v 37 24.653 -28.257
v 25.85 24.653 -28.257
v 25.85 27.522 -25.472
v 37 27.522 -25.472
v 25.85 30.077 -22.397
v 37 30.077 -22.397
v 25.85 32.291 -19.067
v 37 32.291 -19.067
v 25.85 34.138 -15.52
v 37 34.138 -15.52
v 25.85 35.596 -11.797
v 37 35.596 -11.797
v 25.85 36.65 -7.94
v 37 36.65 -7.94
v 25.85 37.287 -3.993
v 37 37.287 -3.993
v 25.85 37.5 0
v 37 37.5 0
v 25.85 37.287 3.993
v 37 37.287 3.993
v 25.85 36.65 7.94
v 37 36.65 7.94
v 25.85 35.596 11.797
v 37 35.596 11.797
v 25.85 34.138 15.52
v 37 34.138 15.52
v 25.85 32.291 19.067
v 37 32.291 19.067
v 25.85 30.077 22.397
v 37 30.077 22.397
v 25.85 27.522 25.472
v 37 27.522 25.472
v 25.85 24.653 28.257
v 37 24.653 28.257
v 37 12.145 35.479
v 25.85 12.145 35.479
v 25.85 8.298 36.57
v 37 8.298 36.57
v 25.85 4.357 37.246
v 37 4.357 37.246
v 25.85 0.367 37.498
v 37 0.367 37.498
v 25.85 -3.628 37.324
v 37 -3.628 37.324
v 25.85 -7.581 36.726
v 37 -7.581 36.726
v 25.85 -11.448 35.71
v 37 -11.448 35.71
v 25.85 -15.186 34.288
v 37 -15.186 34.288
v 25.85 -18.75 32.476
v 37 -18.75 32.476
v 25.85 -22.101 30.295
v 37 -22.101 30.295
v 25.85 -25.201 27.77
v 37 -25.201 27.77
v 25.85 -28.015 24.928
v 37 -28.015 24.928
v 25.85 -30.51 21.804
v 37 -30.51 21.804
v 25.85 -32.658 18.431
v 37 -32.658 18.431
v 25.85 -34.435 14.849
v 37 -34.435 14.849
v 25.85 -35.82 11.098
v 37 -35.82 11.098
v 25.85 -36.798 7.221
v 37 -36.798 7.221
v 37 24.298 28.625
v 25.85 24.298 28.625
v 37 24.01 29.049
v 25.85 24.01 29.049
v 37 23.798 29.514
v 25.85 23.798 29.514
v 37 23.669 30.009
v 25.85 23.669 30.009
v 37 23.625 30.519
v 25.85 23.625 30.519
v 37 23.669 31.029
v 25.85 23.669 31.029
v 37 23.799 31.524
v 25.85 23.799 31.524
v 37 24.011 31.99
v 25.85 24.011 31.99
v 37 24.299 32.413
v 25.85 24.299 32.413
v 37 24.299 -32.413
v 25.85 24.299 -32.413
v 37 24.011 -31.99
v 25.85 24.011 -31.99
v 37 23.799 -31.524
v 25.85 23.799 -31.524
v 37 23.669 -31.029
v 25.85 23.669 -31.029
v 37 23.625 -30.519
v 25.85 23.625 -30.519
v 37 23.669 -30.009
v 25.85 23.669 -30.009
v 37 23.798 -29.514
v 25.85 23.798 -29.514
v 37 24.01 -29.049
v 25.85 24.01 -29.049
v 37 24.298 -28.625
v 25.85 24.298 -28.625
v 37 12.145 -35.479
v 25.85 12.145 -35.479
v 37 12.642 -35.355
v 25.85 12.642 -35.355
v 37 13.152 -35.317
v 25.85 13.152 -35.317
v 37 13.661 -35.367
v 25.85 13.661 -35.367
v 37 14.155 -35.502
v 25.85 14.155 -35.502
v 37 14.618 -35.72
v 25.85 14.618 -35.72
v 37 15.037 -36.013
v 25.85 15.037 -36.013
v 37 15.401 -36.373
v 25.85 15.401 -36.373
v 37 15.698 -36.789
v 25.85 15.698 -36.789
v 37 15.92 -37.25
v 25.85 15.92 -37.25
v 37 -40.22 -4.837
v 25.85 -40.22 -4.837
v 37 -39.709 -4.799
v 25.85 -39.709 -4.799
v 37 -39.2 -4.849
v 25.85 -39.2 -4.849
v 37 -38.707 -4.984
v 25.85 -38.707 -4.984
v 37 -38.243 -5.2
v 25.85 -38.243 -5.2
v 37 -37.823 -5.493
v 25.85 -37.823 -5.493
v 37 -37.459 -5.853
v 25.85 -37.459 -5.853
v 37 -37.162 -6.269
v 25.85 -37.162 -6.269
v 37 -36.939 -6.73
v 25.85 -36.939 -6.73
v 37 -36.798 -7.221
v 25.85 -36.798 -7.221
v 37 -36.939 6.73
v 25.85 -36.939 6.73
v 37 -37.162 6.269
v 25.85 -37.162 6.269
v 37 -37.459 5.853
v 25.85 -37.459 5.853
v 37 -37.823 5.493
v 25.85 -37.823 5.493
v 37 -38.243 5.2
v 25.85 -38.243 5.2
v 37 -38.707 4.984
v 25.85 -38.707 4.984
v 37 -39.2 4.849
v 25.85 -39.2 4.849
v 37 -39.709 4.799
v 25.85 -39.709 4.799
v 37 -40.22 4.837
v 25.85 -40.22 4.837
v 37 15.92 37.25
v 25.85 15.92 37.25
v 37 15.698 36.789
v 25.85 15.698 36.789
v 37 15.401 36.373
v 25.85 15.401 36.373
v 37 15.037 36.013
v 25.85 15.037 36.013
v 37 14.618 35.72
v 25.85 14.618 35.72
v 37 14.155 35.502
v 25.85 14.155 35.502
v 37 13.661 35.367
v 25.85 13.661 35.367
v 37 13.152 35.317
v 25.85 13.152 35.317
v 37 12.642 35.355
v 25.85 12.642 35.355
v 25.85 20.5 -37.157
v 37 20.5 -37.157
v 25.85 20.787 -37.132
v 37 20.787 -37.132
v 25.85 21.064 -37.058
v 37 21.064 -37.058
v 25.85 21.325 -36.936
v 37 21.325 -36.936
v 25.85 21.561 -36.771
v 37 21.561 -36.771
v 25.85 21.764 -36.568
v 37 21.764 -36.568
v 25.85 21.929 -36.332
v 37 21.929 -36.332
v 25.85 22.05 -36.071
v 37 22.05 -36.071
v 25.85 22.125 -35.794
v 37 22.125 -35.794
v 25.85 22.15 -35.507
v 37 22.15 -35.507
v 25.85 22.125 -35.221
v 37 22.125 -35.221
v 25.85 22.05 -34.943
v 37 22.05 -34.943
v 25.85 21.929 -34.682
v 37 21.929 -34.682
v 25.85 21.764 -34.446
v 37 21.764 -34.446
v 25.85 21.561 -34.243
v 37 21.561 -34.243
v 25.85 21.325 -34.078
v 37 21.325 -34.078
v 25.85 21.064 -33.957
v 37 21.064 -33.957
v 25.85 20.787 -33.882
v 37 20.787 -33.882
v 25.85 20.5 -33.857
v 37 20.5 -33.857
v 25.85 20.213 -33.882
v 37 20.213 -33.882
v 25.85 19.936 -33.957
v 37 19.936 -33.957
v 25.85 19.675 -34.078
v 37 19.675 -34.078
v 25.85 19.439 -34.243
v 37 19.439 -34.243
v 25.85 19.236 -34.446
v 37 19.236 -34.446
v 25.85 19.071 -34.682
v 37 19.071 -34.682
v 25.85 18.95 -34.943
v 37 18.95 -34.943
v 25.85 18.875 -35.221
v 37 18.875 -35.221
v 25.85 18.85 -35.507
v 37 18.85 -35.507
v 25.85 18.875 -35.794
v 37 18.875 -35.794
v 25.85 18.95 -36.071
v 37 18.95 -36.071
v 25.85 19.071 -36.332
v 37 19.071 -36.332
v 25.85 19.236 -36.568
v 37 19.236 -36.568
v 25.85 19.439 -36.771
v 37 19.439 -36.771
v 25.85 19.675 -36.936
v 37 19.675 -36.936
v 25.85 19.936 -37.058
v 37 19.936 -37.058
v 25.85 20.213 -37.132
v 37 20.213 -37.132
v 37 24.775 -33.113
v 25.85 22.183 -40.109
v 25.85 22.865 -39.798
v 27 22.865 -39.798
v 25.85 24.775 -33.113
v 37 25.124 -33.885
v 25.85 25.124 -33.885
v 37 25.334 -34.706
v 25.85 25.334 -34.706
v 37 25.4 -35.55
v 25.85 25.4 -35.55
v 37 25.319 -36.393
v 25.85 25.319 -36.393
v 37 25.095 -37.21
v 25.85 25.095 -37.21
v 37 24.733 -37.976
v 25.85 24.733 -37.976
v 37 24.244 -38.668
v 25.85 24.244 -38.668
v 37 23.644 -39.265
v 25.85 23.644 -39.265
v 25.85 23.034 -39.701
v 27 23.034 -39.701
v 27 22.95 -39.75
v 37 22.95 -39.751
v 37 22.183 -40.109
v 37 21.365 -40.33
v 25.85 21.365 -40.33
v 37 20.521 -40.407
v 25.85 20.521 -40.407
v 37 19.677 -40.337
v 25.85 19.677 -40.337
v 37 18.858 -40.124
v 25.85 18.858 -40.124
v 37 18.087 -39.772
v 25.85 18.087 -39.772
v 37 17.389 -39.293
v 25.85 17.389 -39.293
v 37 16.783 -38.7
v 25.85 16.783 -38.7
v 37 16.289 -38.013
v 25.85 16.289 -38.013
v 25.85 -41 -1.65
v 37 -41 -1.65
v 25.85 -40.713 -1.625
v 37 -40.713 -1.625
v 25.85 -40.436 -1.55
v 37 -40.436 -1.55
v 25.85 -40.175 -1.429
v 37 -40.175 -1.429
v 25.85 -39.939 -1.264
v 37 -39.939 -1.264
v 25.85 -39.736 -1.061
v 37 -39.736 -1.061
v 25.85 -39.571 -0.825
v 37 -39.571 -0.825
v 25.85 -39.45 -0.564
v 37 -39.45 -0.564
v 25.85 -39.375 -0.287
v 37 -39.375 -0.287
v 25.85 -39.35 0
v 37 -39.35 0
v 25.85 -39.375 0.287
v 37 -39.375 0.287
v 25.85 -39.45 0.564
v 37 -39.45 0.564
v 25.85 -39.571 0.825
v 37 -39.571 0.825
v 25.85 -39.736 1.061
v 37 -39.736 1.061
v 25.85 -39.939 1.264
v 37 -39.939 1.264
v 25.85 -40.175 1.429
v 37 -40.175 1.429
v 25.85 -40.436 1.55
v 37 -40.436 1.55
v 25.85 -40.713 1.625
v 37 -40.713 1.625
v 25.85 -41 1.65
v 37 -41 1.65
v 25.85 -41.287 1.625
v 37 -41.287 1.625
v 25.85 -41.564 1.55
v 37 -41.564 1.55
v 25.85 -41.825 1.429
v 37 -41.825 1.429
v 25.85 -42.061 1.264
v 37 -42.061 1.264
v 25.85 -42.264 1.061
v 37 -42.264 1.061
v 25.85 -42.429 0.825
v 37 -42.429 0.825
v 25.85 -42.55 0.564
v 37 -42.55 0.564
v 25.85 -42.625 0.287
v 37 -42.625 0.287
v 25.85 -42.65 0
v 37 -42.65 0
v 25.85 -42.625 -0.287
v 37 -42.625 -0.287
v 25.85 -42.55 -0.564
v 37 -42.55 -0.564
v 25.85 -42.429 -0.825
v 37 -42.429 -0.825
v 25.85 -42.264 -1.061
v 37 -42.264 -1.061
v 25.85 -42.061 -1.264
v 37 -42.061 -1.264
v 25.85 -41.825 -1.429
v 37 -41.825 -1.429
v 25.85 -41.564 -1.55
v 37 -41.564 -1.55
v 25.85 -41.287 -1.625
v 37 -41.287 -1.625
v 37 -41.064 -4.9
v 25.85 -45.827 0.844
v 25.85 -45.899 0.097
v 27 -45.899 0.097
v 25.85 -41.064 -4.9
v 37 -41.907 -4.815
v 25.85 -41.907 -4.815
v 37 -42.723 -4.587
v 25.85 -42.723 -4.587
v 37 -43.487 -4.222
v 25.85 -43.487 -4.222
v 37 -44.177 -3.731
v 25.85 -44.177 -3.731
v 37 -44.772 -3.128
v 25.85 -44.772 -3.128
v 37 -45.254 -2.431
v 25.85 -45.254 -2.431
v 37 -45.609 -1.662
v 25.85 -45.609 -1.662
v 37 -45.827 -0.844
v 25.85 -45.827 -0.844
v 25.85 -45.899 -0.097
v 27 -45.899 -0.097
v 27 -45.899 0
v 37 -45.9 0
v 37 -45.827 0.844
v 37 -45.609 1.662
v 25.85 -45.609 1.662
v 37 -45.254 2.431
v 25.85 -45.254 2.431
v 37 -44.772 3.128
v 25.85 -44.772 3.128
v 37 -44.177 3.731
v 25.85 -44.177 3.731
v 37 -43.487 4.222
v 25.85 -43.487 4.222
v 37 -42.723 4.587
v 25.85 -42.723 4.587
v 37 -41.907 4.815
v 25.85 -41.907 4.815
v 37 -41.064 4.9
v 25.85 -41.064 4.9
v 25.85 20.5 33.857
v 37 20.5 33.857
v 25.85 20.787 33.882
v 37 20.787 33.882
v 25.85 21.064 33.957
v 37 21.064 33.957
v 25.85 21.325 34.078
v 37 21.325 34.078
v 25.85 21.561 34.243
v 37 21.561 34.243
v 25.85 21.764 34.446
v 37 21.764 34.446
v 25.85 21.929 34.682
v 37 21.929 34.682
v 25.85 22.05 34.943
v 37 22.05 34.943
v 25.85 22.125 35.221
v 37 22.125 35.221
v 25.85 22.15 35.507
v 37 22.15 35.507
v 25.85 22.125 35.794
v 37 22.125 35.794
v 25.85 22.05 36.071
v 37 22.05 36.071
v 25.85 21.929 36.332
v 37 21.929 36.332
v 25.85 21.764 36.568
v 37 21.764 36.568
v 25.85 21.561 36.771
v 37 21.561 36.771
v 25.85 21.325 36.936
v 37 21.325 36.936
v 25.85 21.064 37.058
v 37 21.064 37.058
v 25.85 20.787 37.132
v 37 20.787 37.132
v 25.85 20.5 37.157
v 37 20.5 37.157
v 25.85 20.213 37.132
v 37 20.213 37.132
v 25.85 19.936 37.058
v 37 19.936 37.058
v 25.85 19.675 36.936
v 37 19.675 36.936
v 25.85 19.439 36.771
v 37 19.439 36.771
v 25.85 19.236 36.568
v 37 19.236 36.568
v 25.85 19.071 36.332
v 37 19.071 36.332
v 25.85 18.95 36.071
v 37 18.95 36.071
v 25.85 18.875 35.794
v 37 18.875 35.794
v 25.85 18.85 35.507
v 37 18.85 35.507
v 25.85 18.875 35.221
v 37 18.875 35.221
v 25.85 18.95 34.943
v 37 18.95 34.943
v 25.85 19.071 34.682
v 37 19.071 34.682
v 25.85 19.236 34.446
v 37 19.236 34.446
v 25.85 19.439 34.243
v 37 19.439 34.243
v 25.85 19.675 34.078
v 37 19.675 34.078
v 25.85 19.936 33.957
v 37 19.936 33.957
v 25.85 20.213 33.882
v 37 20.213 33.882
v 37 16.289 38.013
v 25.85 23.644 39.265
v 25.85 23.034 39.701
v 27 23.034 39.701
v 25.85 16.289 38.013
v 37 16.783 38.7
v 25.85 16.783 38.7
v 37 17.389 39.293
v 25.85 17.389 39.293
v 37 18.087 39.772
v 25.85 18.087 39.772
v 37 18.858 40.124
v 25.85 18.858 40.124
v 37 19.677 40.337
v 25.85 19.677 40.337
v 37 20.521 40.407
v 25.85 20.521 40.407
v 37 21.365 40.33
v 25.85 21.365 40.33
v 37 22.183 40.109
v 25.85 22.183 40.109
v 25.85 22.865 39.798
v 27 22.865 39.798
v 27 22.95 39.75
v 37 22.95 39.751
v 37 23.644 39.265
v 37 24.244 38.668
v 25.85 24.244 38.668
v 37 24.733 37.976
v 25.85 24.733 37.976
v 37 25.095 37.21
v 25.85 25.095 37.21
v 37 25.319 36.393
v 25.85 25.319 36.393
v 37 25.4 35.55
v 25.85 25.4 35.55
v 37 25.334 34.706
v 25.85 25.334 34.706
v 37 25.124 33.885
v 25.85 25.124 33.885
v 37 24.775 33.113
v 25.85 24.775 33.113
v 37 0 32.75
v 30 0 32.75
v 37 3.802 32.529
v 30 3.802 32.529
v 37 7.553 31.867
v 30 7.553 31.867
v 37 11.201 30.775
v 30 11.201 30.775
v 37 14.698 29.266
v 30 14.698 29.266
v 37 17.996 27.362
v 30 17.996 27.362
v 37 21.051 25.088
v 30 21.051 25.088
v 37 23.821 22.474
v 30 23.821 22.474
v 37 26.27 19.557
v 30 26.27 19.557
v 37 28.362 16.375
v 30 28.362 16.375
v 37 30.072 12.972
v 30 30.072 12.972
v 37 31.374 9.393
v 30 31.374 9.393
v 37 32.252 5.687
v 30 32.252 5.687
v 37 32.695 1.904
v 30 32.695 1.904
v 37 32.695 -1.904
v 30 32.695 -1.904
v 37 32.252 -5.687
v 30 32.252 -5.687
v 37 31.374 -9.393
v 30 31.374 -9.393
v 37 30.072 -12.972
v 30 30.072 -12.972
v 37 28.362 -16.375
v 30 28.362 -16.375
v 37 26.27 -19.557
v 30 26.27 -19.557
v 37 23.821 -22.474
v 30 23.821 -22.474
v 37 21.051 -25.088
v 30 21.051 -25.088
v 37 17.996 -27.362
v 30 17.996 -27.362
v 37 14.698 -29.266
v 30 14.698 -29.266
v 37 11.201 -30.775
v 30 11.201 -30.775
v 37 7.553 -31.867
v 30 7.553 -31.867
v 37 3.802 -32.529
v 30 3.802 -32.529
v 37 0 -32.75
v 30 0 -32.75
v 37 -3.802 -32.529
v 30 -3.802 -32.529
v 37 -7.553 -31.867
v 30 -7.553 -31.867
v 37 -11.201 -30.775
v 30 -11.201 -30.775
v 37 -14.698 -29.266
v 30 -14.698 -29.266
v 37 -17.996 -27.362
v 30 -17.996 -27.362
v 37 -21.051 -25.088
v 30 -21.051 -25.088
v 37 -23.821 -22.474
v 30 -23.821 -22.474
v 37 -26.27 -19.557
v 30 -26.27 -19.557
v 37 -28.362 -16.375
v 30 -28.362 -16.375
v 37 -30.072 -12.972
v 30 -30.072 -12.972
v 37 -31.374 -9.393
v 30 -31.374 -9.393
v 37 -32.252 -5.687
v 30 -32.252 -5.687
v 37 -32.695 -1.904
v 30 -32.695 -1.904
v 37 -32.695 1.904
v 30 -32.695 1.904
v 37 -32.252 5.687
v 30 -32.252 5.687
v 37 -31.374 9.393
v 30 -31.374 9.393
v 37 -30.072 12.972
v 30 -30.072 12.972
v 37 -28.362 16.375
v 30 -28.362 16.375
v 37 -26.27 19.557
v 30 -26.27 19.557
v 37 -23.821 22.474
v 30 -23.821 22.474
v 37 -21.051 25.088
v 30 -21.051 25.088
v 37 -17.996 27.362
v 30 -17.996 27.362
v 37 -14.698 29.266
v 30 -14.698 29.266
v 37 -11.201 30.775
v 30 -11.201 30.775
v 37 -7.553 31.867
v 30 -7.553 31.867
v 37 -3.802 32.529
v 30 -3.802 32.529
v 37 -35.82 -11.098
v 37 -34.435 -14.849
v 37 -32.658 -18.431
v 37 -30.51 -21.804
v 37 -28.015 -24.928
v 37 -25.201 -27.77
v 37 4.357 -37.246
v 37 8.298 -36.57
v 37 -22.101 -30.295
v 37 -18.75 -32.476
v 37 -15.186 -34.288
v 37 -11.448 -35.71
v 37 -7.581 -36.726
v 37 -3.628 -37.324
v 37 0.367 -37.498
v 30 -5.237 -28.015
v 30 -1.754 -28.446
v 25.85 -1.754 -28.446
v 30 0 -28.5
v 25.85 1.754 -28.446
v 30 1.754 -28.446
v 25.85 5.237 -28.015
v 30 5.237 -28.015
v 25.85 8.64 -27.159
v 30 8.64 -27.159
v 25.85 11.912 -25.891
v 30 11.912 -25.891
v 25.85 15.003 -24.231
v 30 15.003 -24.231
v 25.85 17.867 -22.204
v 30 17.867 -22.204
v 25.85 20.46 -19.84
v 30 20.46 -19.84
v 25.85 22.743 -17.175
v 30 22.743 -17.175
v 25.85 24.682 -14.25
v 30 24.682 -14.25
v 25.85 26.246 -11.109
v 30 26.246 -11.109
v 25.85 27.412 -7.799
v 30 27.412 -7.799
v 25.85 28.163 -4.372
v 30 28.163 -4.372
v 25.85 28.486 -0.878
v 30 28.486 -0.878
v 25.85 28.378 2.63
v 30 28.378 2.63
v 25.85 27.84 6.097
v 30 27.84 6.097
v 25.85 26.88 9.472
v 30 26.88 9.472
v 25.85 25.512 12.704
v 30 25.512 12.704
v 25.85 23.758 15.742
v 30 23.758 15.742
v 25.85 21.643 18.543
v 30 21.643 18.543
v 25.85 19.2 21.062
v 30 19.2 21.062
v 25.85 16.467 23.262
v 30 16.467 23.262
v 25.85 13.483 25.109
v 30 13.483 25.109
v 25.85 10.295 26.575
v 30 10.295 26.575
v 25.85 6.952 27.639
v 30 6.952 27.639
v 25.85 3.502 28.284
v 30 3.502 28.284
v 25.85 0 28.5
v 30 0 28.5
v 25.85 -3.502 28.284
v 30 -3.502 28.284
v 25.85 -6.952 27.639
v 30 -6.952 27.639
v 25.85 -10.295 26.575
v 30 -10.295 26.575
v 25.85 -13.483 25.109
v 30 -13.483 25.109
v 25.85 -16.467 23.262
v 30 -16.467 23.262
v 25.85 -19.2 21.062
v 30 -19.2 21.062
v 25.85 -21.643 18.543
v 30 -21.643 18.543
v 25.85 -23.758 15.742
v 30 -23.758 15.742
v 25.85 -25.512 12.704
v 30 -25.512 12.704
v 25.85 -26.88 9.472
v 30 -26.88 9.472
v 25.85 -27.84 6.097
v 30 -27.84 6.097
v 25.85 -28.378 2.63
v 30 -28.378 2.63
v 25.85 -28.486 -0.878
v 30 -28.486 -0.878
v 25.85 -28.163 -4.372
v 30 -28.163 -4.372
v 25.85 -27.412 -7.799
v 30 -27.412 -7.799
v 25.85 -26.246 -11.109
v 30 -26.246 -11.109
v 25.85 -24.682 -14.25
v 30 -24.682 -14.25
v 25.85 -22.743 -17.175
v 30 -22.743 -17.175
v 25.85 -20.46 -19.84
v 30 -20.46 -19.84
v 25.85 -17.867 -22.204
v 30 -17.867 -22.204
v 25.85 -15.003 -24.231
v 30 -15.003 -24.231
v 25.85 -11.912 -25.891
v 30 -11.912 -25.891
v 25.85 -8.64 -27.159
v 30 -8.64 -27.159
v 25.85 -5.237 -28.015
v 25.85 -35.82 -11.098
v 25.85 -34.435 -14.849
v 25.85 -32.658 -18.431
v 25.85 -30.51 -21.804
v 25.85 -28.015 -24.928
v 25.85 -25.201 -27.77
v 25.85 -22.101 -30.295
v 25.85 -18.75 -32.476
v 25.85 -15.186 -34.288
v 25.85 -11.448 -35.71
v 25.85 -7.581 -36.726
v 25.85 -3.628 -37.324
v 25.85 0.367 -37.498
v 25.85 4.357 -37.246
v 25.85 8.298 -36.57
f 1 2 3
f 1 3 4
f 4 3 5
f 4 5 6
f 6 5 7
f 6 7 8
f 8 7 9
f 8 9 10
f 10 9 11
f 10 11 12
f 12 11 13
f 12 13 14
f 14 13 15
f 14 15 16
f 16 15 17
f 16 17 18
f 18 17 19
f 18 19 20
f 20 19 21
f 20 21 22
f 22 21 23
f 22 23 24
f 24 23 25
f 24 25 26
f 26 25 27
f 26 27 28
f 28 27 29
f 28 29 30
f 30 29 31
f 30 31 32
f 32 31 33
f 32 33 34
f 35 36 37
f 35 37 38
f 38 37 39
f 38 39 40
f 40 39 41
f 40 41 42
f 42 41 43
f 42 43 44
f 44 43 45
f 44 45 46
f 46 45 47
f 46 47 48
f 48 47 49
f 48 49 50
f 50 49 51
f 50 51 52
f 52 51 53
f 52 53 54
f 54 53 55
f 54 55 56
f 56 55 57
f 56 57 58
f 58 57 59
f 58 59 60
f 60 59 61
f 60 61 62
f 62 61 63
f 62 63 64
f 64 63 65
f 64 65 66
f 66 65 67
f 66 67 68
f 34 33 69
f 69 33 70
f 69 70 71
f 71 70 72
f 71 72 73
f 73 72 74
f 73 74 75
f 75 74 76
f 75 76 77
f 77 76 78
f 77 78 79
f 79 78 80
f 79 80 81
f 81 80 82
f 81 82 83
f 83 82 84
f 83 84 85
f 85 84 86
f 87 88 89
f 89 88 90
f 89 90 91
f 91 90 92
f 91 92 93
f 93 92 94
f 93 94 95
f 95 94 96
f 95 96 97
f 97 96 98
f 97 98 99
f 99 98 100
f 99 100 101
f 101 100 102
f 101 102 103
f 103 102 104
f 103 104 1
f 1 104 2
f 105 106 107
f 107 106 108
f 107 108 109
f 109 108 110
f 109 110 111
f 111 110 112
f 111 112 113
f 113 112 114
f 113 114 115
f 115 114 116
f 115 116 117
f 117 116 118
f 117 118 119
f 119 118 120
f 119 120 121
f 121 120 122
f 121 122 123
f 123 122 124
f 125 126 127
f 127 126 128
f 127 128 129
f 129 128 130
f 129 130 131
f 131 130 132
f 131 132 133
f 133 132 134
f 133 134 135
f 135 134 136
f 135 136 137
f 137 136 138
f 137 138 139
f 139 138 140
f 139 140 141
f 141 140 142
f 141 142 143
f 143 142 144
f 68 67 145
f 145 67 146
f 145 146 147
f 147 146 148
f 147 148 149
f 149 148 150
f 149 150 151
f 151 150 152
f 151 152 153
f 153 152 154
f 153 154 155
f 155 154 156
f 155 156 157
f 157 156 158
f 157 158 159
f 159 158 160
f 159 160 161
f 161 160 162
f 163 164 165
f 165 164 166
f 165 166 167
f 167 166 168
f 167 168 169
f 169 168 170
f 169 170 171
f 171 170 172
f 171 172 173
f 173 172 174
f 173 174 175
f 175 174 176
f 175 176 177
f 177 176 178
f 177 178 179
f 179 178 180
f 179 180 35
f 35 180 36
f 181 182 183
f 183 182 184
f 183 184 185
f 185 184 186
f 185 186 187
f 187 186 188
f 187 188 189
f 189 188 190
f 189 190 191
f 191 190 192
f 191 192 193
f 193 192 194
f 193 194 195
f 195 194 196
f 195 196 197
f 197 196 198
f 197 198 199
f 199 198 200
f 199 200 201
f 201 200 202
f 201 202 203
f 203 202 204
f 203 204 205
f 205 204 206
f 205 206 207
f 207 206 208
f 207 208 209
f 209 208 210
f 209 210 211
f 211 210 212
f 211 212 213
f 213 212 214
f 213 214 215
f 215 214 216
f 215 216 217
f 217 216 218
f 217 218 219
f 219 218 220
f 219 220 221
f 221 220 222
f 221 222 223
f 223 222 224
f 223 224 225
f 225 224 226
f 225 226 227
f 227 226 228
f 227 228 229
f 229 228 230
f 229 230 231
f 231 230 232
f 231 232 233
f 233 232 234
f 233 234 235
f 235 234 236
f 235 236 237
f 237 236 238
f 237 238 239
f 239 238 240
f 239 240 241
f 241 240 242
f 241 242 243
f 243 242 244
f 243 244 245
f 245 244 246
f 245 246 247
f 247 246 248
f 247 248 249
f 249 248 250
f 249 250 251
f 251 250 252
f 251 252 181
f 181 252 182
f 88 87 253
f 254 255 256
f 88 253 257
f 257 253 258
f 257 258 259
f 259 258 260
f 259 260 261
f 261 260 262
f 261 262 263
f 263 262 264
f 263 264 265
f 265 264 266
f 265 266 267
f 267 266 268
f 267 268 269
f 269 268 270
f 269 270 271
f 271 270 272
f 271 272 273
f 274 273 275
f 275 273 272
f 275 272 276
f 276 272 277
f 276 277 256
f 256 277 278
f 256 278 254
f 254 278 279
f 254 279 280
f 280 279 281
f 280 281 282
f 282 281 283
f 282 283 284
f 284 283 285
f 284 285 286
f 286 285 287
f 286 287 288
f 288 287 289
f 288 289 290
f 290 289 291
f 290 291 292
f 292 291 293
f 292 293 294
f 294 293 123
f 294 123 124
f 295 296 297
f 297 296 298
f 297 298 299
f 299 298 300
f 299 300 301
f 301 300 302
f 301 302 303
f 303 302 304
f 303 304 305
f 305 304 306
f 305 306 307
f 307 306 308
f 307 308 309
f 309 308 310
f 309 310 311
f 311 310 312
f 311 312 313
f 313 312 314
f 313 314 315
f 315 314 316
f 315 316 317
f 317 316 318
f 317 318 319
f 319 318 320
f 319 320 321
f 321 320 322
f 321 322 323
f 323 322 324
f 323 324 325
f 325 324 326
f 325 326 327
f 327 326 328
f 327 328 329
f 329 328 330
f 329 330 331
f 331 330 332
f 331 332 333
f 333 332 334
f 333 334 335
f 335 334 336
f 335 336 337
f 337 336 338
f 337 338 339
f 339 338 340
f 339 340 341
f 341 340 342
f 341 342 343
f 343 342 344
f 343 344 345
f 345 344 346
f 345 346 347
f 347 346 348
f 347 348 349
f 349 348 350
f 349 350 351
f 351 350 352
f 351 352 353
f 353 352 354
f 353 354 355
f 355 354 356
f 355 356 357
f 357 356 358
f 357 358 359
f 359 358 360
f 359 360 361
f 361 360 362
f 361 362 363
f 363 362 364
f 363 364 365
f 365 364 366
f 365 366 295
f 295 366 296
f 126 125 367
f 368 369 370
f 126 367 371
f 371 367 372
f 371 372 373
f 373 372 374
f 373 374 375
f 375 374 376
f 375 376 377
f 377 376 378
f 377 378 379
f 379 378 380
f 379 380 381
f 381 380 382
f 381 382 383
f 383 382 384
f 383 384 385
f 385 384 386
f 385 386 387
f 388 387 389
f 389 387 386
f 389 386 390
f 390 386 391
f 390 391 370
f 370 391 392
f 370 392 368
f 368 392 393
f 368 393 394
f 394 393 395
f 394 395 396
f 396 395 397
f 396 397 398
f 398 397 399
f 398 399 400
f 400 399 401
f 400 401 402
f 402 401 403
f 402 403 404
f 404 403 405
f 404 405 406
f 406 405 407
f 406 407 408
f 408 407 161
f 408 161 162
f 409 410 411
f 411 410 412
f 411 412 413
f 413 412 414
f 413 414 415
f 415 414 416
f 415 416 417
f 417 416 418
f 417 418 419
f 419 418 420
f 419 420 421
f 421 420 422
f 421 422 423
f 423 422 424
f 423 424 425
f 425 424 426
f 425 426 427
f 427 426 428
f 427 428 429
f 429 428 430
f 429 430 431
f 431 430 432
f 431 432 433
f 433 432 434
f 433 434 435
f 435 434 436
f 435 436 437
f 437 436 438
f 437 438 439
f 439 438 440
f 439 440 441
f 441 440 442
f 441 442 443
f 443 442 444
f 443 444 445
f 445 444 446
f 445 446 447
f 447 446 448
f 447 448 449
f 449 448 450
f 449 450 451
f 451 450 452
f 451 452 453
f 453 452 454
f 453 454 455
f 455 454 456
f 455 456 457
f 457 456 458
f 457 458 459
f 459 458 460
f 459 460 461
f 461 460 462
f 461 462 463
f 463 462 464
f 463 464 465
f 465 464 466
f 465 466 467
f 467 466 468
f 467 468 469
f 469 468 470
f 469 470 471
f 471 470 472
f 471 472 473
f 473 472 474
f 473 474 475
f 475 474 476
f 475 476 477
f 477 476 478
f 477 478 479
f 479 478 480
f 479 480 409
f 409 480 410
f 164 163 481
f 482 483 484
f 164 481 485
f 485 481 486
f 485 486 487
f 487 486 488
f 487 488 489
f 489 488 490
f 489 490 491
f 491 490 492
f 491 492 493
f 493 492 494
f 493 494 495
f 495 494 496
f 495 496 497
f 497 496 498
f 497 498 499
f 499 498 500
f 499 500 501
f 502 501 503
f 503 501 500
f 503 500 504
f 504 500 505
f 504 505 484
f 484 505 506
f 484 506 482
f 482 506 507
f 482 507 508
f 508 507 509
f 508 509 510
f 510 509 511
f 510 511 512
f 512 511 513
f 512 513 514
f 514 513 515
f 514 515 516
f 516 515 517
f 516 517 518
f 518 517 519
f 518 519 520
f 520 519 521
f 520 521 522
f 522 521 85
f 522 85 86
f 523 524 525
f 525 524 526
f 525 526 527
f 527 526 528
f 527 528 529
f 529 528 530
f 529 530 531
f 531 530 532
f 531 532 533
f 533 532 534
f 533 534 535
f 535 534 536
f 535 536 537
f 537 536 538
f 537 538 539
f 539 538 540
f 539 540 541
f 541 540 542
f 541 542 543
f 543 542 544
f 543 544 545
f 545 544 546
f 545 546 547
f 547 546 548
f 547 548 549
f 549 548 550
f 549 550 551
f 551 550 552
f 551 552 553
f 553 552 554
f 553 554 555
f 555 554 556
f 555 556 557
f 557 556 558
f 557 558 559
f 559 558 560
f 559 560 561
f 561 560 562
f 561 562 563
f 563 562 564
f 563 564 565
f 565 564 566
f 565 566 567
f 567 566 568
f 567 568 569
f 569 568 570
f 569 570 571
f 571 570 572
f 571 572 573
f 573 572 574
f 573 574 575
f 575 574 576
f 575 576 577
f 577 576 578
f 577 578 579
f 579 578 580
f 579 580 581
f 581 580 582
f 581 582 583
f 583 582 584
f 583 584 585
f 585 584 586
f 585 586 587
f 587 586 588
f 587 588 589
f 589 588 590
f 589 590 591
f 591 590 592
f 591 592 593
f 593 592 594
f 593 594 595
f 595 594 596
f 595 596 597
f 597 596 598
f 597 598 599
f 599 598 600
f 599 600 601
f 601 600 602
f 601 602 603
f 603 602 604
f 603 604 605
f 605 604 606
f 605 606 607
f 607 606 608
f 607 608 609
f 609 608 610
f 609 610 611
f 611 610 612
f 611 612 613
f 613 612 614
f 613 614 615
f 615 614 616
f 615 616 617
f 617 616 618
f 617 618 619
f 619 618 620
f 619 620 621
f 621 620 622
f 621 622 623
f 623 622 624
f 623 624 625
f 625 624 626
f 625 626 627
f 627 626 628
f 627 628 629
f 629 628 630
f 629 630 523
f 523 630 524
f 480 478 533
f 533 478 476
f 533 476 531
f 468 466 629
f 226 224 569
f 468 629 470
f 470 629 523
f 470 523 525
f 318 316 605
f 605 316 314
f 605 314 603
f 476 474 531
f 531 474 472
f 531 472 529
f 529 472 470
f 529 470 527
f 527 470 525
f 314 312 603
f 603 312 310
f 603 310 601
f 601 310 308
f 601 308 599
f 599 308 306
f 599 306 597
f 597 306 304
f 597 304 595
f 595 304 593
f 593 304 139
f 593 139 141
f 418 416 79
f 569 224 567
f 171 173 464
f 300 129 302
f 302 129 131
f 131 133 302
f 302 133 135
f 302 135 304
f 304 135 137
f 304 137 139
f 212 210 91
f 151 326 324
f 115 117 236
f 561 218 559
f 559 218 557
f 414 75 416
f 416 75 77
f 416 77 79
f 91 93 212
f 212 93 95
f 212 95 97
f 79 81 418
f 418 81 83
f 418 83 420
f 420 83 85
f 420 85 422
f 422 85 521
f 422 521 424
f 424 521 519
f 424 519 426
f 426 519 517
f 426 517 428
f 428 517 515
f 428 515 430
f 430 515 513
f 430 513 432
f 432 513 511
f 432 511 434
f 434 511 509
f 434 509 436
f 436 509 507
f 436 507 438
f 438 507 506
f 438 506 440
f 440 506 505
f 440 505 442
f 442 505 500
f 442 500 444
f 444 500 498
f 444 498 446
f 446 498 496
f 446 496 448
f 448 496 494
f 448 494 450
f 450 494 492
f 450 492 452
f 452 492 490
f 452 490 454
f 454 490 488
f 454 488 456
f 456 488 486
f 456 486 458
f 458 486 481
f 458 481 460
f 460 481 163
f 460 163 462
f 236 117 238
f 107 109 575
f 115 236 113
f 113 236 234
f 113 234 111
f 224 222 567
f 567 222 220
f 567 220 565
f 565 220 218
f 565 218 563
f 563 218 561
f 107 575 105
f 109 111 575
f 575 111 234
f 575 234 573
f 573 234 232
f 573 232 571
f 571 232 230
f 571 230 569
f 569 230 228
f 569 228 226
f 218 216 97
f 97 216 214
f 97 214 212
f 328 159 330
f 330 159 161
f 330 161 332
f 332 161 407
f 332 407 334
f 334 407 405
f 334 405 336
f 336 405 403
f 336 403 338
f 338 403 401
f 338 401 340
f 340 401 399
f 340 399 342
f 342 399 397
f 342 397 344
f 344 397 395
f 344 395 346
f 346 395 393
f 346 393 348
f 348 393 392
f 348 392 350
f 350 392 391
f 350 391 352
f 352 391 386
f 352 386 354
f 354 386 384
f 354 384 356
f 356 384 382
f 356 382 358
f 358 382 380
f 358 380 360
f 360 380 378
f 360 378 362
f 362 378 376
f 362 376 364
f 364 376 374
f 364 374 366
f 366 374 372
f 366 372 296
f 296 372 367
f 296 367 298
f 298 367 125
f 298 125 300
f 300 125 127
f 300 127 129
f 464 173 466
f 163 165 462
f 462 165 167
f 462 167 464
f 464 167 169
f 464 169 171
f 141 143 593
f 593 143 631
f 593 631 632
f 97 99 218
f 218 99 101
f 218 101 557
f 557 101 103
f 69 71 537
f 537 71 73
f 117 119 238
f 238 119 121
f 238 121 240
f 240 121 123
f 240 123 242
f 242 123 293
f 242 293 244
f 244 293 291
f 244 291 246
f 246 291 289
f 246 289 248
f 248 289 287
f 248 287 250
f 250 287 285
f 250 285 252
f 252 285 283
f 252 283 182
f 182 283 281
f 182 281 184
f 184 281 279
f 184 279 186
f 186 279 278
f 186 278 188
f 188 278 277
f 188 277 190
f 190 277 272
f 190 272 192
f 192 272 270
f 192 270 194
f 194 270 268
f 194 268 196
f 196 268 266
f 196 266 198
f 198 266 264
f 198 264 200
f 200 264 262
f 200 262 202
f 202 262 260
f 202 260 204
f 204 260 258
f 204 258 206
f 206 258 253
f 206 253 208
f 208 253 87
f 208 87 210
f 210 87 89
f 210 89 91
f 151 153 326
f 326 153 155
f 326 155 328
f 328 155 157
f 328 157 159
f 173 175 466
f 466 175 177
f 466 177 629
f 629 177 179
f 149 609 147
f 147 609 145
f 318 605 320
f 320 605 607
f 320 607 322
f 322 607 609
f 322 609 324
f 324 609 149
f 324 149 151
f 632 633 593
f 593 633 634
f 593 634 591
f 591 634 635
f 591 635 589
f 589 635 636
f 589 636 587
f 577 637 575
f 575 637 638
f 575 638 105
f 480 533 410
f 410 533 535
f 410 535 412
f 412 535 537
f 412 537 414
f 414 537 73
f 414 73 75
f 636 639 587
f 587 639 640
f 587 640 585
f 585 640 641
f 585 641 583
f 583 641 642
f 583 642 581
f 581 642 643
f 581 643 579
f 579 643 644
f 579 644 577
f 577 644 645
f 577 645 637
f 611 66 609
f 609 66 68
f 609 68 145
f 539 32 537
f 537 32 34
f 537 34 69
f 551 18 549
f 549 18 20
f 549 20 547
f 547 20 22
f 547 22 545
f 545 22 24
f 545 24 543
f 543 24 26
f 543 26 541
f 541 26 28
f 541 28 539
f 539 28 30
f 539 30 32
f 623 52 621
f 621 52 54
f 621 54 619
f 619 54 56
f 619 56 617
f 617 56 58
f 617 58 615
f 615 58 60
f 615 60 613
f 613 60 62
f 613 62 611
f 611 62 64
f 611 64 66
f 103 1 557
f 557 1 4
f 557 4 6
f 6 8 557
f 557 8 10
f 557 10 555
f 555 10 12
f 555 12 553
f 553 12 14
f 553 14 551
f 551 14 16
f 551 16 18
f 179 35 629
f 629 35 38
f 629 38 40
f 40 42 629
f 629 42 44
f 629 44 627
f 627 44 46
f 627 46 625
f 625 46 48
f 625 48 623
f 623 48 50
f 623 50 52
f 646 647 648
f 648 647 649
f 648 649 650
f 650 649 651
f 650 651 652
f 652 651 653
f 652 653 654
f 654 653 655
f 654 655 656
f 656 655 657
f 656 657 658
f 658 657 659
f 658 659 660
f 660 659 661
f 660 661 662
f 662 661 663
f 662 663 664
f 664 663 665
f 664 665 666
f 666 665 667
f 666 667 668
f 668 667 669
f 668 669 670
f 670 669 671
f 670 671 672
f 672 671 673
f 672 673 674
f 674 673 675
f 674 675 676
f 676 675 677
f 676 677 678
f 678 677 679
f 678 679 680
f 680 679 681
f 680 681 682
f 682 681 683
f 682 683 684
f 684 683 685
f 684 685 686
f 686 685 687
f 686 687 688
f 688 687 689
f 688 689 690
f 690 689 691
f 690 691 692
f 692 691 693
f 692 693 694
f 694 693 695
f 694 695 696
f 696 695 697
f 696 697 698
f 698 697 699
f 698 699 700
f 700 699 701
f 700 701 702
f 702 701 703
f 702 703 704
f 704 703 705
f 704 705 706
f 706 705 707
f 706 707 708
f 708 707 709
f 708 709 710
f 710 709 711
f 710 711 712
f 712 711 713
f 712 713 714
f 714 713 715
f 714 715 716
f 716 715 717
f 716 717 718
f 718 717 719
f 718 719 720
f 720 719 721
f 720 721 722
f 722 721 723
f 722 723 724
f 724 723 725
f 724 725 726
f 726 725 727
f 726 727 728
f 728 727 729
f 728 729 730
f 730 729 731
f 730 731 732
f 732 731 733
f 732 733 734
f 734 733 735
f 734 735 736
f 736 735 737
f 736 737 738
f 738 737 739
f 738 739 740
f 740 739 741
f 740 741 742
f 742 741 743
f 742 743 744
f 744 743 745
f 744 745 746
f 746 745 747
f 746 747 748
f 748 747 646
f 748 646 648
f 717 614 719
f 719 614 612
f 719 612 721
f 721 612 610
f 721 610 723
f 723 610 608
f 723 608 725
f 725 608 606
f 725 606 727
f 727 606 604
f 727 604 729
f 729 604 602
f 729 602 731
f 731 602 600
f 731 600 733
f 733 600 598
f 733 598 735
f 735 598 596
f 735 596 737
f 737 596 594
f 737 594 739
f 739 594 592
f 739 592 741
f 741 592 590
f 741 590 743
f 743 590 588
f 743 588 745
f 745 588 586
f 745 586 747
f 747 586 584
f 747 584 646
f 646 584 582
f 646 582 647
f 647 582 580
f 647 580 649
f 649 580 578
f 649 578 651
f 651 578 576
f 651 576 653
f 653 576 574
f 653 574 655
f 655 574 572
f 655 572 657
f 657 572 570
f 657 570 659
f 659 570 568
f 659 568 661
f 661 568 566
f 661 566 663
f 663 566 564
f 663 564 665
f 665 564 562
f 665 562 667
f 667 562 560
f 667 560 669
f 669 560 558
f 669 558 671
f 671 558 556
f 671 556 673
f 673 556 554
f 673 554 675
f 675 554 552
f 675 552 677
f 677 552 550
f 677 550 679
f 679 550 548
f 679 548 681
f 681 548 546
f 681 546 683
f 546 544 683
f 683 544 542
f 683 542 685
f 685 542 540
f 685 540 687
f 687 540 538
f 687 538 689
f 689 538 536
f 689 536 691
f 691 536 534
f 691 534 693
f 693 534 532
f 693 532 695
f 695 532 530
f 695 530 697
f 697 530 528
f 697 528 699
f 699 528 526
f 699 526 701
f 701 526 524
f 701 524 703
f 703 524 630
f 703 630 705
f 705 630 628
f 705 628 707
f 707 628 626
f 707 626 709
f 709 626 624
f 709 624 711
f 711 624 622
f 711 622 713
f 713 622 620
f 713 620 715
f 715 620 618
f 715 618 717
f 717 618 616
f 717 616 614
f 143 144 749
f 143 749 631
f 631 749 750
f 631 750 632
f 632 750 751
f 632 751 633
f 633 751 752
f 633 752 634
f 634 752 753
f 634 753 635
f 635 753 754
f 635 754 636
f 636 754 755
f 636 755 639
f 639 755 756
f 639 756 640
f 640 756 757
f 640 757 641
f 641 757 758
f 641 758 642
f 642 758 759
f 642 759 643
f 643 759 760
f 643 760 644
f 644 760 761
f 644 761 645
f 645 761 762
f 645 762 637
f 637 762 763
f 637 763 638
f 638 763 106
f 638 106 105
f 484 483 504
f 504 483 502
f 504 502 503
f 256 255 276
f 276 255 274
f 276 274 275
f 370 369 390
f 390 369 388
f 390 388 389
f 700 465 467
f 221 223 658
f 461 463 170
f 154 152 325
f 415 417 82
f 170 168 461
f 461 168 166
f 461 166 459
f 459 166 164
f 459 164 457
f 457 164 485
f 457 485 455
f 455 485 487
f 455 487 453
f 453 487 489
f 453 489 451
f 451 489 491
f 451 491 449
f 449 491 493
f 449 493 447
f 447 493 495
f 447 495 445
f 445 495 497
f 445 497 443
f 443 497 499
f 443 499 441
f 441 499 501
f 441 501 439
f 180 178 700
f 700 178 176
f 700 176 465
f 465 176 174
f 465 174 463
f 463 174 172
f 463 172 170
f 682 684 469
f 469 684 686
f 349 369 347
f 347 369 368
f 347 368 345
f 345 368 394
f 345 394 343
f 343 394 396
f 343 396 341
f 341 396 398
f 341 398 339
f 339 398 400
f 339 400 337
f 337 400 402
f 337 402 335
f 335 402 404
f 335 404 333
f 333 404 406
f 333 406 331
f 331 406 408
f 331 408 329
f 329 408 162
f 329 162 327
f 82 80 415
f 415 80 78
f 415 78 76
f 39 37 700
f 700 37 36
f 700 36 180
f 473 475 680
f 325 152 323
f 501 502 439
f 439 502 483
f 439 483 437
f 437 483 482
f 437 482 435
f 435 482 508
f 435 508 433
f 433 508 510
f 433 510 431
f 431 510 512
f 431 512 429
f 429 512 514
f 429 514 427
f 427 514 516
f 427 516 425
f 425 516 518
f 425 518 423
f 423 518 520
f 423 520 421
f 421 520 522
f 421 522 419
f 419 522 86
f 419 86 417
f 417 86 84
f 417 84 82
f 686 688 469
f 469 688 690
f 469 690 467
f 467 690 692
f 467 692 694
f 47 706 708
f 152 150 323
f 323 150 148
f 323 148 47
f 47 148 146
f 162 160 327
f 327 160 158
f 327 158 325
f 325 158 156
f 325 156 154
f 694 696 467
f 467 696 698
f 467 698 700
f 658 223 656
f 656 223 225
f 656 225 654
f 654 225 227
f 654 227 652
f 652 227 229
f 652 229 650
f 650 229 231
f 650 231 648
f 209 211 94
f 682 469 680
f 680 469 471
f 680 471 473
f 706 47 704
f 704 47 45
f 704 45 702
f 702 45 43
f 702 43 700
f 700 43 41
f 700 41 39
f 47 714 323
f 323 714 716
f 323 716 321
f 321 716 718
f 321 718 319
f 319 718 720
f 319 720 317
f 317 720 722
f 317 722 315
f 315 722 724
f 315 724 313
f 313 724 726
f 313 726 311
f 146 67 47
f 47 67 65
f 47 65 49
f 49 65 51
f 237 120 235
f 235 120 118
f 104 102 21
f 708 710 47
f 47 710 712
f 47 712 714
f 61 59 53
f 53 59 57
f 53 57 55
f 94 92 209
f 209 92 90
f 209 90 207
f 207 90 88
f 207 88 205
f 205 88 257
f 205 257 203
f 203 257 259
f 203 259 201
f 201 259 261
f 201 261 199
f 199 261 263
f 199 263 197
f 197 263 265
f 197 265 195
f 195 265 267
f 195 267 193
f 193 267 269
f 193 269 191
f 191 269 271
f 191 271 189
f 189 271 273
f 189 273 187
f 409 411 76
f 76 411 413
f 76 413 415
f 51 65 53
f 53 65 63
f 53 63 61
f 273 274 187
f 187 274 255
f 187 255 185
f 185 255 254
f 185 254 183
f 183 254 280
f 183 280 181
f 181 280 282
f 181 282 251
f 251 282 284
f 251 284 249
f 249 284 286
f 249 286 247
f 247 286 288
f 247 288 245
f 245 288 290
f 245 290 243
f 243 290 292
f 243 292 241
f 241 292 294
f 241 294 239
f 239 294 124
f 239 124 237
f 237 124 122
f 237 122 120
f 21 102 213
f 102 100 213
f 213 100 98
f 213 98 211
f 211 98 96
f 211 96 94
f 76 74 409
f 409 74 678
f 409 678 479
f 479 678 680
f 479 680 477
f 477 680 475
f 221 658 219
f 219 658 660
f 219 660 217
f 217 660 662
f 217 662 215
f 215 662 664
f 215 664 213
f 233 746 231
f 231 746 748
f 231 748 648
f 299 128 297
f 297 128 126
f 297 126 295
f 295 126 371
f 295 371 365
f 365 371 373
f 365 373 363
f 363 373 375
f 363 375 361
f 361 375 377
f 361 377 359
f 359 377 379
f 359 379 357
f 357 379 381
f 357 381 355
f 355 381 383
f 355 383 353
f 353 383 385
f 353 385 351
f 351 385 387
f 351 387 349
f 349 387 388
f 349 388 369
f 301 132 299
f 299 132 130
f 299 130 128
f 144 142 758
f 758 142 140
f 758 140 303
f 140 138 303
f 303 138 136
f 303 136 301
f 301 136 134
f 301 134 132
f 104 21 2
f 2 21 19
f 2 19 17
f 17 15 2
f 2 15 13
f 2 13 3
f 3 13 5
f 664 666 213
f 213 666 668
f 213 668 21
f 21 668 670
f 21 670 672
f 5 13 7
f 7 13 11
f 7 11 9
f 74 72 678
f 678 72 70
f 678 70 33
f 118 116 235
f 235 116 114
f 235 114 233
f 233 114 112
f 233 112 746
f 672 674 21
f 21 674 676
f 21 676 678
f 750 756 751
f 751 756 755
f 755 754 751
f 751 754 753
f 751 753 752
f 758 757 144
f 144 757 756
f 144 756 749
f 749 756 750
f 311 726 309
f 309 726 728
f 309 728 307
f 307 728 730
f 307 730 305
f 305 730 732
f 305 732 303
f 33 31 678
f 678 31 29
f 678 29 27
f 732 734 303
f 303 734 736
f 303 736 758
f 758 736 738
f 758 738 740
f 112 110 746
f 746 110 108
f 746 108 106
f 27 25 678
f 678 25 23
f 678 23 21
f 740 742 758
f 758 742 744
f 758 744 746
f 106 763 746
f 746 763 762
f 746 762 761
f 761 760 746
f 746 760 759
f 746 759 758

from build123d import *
from build123d.topology import SkipClean

# Parameters (mm, degrees)
BASPROSKE_W         = 26
BASPROSKE_H         = 4.375
TOOTHCUT_DEPTH      = 60.063525123
TEETHCUTS_COUNT     = 55
TEETHCUTS_ANGLE     = 353.454545455
SKETCH2_R           = 37.5
BOSS_EXTRUDE2_DEPTH = 4.5
SKETCH3_R           = 2.25
SKETCH3_R_2         = 1.8
CUT_EXTRUDE1_DEPTH  = 4.5
SKETCH4_R           = 3.25
CUT_EXTRUDE2_DEPTH  = 3
BOSS_EXTRUDE3_START = 4
SKETCH5_R           = 37.5
SKETCH5_R_2         = 28.5
BOSS_EXTRUDE3_DEPTH = 4
BOSS_EXTRUDE4_START = 7
SKETCH6_R           = 37.5
SKETCH6_R_2         = 32.75
BOSS_EXTRUDE4_DEPTH = 7
SKETCH7_R           = 1.65
BOSS_EXTRUDE5_DEPTH = 10
FILLET1_R           = 3
BOSS_EXTRUDE6_START = -10
SKETCH8_R           = 1.65
BOSS_EXTRUDE6_DEPTH = 10
FILLET2_R           = 3
SKETCH9_R           = 37.6
SKETCH9_R_2         = 37.5
BOSS_EXTRUDE7_DEPTH = 10
FILLET3_R           = 3
SKETCH10_R          = 45.899134002
SKETCH10_R_2        = 2.25
CUT_EXTRUDE3_DEPTH  = 31.5
SKETCH12_R          = 1.65
SKETCH12_R_2        = 28.5
BOSS_EXTRUDE8_DEPTH = 1.15


with BuildPart() as part:
    # BasProSke → Base-Revolve (revolve)
    with BuildSketch(Plane(origin=(0, 0, 0), x_dir=(1, 0, 0), z_dir=(0, 1, 0)), mode=Mode.PRIVATE) as base_revolve_sk:
        with Locations((13, 35.3125)):
            Rectangle(BASPROSKE_W, BASPROSKE_H)
    revolve(base_revolve_sk.sketch.rotate(Axis((-10, 0, 0), (1, 0, 0)), 180), axis=Axis((-10, 0, 0), (1, 0, 0)))

    # TooCutSke → ToothCut (cut, through all)
    with BuildSketch(Plane(origin=(0, 0, 0), x_dir=(0, 0, -1), z_dir=(1, 0, 0))):
        with BuildLine():
            ThreePointArc((1.451447951, 33.067761022), (1.040603726, 34.522224287), (0.503573985, 35.934971761))
            ThreePointArc((0.503573985, 35.934971761), (0, 35.9385), (-0.503573985, 35.934971761))
            ThreePointArc((-0.503573985, 35.934971761), (-1.040603726, 34.522224287), (-1.451447951, 33.067761022))
            ThreePointArc((-1.451447951, 33.067761022), (0, 33.0996), (1.451447951, 33.067761022))
        make_face()
    toothcut = extrude(amount=TOOTHCUT_DEPTH, mode=Mode.SUBTRACT)

    # TeethCuts: ToothCut ×55 about axis
    teethcuts_axis = Axis((-10, 0, 0), (1, 0, 0))
    for i in range(1, TEETHCUTS_COUNT):
        add(toothcut.rotate(teethcuts_axis, i * TEETHCUTS_ANGLE / (TEETHCUTS_COUNT - 1)), mode=Mode.SUBTRACT)

    # Sketch2 → Boss-Extrude2 (add)
    with BuildSketch(Plane.ZY):
        Circle(SKETCH2_R)
    extrude(amount=BOSS_EXTRUDE2_DEPTH)

    # Sketch3 → Cut-Extrude1 (cut)
    with BuildSketch(Plane.ZY.offset(4.5)):
        Circle(SKETCH3_R)
        with Locations((0, 8.5)):
            Circle(SKETCH3_R_2)
        with Locations(Location((0, -8.5, 0), (0, 0, 180))):
            Circle(SKETCH3_R_2)
    extrude(amount=-CUT_EXTRUDE1_DEPTH, mode=Mode.SUBTRACT)

    # Sketch4 → Cut-Extrude2 (cut)
    with BuildSketch(Plane(origin=(0, 0, 0), x_dir=(0, 0, -1), z_dir=(1, 0, 0))):
        with Locations((0, -8.5)):
            Circle(SKETCH4_R)
        with Locations((0, 8.5)):
            Circle(SKETCH4_R)
    extrude(amount=-CUT_EXTRUDE2_DEPTH, mode=Mode.SUBTRACT)

    # Sketch5 → Boss-Extrude3 (add)
    with BuildSketch(Plane(origin=(26, 0, 0), x_dir=(0, 0, -1), z_dir=(1, 0, 0)).offset(BOSS_EXTRUDE3_START)):
        with Locations(Location((0, 0, 0), (0, 0, 180))):
            Circle(SKETCH5_R)
        Circle(SKETCH5_R_2, mode=Mode.SUBTRACT)
    extrude(amount=-BOSS_EXTRUDE3_DEPTH)

    # Sketch6 → Boss-Extrude4 (add)
    with BuildSketch(Plane(origin=(30, 0, 0), x_dir=(0, 0, -1), z_dir=(1, 0, 0)).offset(BOSS_EXTRUDE4_START)):
        with Locations(Location((0, 0, 0), (0, 0, 180))):
            Circle(SKETCH6_R)
        Circle(SKETCH6_R_2, mode=Mode.SUBTRACT)
    extrude(amount=-BOSS_EXTRUDE4_DEPTH)

    # Sketch7 → Boss-Extrude5 (add)
    # profile 1 of 3: a face of its own
    with BuildSketch(Plane(origin=(37, 0, 0), x_dir=(0, 0, -1), z_dir=(1, 0, 0))):
        with BuildLine():
            ThreePointArc((-30.713496008, 21.515835168), (-39.750566034, 22.95), (-33.990007843, 15.840750198))
            ThreePointArc((-33.990007843, 15.840750198), (-32.475952642, 18.75), (-30.713496008, 21.515835168))
        make_face()
        with Locations((-35.507041555, 20.5)):
            Circle(SKETCH7_R, mode=Mode.SUBTRACT)
    # profile 2 of 3: a face of its own
    with BuildSketch(Plane(origin=(37, 0, 0), x_dir=(0, 0, -1), z_dir=(1, 0, 0))):
        with BuildLine():
            ThreePointArc((-3.276511835, -37.356585366), (0, -45.9), (3.276511835, -37.356585366))
            ThreePointArc((3.276511835, -37.356585366), (0, -37.5), (-3.276511835, -37.356585366))
        make_face()
        with Locations((0, -41)):
            Circle(SKETCH7_R, mode=Mode.SUBTRACT)
    # profile 3 of 3: a face of its own
    with BuildSketch(Plane(origin=(37, 0, 0), x_dir=(0, 0, -1), z_dir=(1, 0, 0))):
        with BuildLine():
            ThreePointArc((30.713496008, 21.515835168), (32.475952642, 18.75), (33.990007843, 15.840750198))
            ThreePointArc((33.990007843, 15.840750198), (39.750566034, 22.95), (30.713496008, 21.515835168))
        make_face()
        with Locations((35.507041555, 20.5)):
            Circle(SKETCH7_R, mode=Mode.SUBTRACT)
    extrude(amount=-BOSS_EXTRUDE5_DEPTH)

    # Fillet1
    fillet1_edges = [part.edges().sort_by_distance(p)[0] for p in [
        (32, 15.840750198, 33.990007843),
        (32, 21.515835168, 30.713496008),
        (32, -37.356585366, -3.276511835),
        (32, -37.356585366, 3.276511835),
        (32, 21.515835168, -30.713496008),
        (32, 15.840750198, -33.990007843),
    ]]
    fillet(fillet1_edges, radius=FILLET1_R)

    # Sketch8 → Boss-Extrude6 (add)
    # profile 1 of 3: a face of its own
    with BuildSketch(Plane.ZY.offset(4.5).offset(BOSS_EXTRUDE6_START)):
        with BuildLine():
            ThreePointArc((3.277032239, 37.357537298), (-0.001858552, 45.899133961), (-3.279499265, 37.357057531))
            ThreePointArc((-3.279499265, 37.357057531), (-0.001244018, 37.500865925), (3.277032239, 37.357537298))
        make_face()
        with Locations((0, 41)):
            Circle(SKETCH8_R, mode=Mode.SUBTRACT)
    # profile 2 of 3: a face of its own
    with BuildSketch(Plane.ZY.offset(4.5).offset(BOSS_EXTRUDE6_START)):
        with BuildLine():
            ThreePointArc((30.71426819, -21.517740103), (39.750655671, -22.948112687), (33.993202634, -15.837979147))
            ThreePointArc((33.993202634, -15.837979147), (32.478138639, -18.749677793), (30.71426819, -21.517740103))
        make_face()
        with Locations((35.507041555, -20.5)):
            Circle(SKETCH8_R, mode=Mode.SUBTRACT)
    # profile 3 of 3: a face of its own
    with BuildSketch(Plane.ZY.offset(4.5).offset(BOSS_EXTRUDE6_START)):
        with BuildLine():
            ThreePointArc((-30.712203543, -21.517680022), (-32.47526663, -18.751188157), (-33.989800256, -15.841195617))
            ThreePointArc((-33.989800256, -15.841195617), (-39.748976395, -22.951021278), (-30.712203543, -21.517680022))
        make_face()
        with Locations((-35.507041555, -20.5)):
            Circle(SKETCH8_R, mode=Mode.SUBTRACT)
    extrude(amount=BOSS_EXTRUDE6_DEPTH)


with BuildPart() as boss_extrude6_piece_1:
    # of the separate pieces the step leaves, piece 1, a body of its own (boss_extrude6_pieces)
    add(part.part.solids().sort_by_distance((37, -36.798102981, 7.221469172))[0])

    # Fillet2
    fillet2_edges = [boss_extrude6_piece_1.edges().sort_by_distance(p)[0] for p in [
        (0.5, -21.517680022, -30.712203543),
        (0.5, -15.841195617, -33.989800256),
    ]]
    fillet(fillet2_edges, radius=FILLET2_R)



with BuildPart() as boss_extrude6_piece_2:
    # of the separate pieces the step leaves, piece 2, a body of its own (boss_extrude6_pieces)
    add(part.part.solids().sort_by_distance((5.5, 37.357057531, -3.279499265))[0])


with BuildPart() as boss_extrude6_piece_3:
    # of the separate pieces the step leaves, piece 3, a body of its own (boss_extrude6_pieces)
    add(part.part.solids().sort_by_distance((5.5, -15.837979147, 33.993202634))[0])


with BuildPart() as boss_extrude6_piece_1_1:
    add(boss_extrude6_piece_1.part)

    add(boss_extrude6_piece_2.part)  # Boss-Extrude7 merges Boss-Extrude6 piece 2

    add(boss_extrude6_piece_3.part)  # Boss-Extrude7 merges Boss-Extrude6 piece 3
    # Sketch9 → Boss-Extrude7 (add)
    with BuildSketch(Plane.ZY.offset(4.5)):
        Circle(SKETCH9_R)
        Circle(SKETCH9_R_2, mode=Mode.SUBTRACT)
    extrude(amount=-BOSS_EXTRUDE7_DEPTH)

    # Fillet3
    fillet3_edges = [boss_extrude6_piece_1_1.edges().sort_by_distance(p)[0] for p in [
        (0.5, 37.448219223, 3.375037342),
        (0.5, 37.447972163, -3.377777505),
        (0.5, -21.646977688, 30.743590502),
        (0.5, -15.798744954, 34.119783966),
    ]]
    fillet(fillet3_edges, radius=FILLET3_R)

    # Sketch10 → Cut-Extrude3 (cut)
    with BuildSketch(Plane.ZY.offset(4.5)):
        Circle(SKETCH10_R)
        Circle(SKETCH10_R_2, mode=Mode.SUBTRACT)
    extrude(amount=-CUT_EXTRUDE3_DEPTH, mode=Mode.SUBTRACT)

    # Sketch12 → Boss-Extrude8 (add)
    with SkipClean():  # the faces are left unmerged after this step: merging them gives an invalid solid
        with BuildSketch(Plane.ZY.offset(-27)):
            with BuildLine():
                ThreePointArc((-32.412539248, 24.299217745), (-39.750566034, 22.95), (-37.250009483, 15.920473518))
                ThreePointArc((-37.250009483, 15.920473518), (-35.60116111, 14.39084752), (-35.478826578, 12.145075735))
                ThreePointArc((-35.478826578, 12.145075735), (-32.475952642, -18.75), (-7.221469172, -36.798102981))
                ThreePointArc((-7.221469172, -36.798102981), (-5.33774102, -38.026933686), (-4.837470235, -40.219691263))
                ThreePointArc((-4.837470235, -40.219691263), (0, -45.9), (4.837470235, -40.219691263))
                ThreePointArc((4.837470235, -40.219691263), (5.33774102, -38.026933686), (7.221469172, -36.798102981))
                ThreePointArc((7.221469172, -36.798102981), (32.475952642, -18.75), (35.478826578, 12.145075735))
                ThreePointArc((35.478826578, 12.145075735), (35.60116111, 14.39084752), (37.250009483, 15.920473518))
                ThreePointArc((37.250009483, 15.920473518), (39.750566034, 22.95), (32.412539248, 24.299217745))
                ThreePointArc((32.412539248, 24.299217745), (30.26342009, 23.636086166), (28.257357407, 24.653027246))
                ThreePointArc((28.257357407, 24.653027246), (0, 37.5), (-28.257357407, 24.653027246))
                ThreePointArc((-28.257357407, 24.653027246), (-30.177504217, 23.644648787), (-32.275580689, 24.194072128))
                add(Edge.make_bspline(
                    [(-32.275580681, 24.194072138), (-32.299145006, 24.211107976), (-32.322416857, 24.228349689), (-32.345393979, 24.245789385), (-32.368074444, 24.26341918), (-32.390456638, 24.28123123), (-32.412539248, 24.299217745)],
                    knots=[0.959340684, 0.959340684, 0.959340684, 0.959340684, 0.959340684, 0.959340684, 0.959340684, 1, 1, 1, 1, 1, 1, 1], degree=6))
            make_face()
            with Locations((0, -41)):
                Circle(SKETCH12_R, mode=Mode.SUBTRACT)
            with Locations((-35.507041555, 20.5)):
                Circle(SKETCH12_R, mode=Mode.SUBTRACT)
            Circle(SKETCH12_R_2, mode=Mode.SUBTRACT)
            with Locations((35.507041555, 20.5)):
                Circle(SKETCH12_R, mode=Mode.SUBTRACT)
        extrude(amount=BOSS_EXTRUDE8_DEPTH)


solid = boss_extrude6_piece_1_1.part
